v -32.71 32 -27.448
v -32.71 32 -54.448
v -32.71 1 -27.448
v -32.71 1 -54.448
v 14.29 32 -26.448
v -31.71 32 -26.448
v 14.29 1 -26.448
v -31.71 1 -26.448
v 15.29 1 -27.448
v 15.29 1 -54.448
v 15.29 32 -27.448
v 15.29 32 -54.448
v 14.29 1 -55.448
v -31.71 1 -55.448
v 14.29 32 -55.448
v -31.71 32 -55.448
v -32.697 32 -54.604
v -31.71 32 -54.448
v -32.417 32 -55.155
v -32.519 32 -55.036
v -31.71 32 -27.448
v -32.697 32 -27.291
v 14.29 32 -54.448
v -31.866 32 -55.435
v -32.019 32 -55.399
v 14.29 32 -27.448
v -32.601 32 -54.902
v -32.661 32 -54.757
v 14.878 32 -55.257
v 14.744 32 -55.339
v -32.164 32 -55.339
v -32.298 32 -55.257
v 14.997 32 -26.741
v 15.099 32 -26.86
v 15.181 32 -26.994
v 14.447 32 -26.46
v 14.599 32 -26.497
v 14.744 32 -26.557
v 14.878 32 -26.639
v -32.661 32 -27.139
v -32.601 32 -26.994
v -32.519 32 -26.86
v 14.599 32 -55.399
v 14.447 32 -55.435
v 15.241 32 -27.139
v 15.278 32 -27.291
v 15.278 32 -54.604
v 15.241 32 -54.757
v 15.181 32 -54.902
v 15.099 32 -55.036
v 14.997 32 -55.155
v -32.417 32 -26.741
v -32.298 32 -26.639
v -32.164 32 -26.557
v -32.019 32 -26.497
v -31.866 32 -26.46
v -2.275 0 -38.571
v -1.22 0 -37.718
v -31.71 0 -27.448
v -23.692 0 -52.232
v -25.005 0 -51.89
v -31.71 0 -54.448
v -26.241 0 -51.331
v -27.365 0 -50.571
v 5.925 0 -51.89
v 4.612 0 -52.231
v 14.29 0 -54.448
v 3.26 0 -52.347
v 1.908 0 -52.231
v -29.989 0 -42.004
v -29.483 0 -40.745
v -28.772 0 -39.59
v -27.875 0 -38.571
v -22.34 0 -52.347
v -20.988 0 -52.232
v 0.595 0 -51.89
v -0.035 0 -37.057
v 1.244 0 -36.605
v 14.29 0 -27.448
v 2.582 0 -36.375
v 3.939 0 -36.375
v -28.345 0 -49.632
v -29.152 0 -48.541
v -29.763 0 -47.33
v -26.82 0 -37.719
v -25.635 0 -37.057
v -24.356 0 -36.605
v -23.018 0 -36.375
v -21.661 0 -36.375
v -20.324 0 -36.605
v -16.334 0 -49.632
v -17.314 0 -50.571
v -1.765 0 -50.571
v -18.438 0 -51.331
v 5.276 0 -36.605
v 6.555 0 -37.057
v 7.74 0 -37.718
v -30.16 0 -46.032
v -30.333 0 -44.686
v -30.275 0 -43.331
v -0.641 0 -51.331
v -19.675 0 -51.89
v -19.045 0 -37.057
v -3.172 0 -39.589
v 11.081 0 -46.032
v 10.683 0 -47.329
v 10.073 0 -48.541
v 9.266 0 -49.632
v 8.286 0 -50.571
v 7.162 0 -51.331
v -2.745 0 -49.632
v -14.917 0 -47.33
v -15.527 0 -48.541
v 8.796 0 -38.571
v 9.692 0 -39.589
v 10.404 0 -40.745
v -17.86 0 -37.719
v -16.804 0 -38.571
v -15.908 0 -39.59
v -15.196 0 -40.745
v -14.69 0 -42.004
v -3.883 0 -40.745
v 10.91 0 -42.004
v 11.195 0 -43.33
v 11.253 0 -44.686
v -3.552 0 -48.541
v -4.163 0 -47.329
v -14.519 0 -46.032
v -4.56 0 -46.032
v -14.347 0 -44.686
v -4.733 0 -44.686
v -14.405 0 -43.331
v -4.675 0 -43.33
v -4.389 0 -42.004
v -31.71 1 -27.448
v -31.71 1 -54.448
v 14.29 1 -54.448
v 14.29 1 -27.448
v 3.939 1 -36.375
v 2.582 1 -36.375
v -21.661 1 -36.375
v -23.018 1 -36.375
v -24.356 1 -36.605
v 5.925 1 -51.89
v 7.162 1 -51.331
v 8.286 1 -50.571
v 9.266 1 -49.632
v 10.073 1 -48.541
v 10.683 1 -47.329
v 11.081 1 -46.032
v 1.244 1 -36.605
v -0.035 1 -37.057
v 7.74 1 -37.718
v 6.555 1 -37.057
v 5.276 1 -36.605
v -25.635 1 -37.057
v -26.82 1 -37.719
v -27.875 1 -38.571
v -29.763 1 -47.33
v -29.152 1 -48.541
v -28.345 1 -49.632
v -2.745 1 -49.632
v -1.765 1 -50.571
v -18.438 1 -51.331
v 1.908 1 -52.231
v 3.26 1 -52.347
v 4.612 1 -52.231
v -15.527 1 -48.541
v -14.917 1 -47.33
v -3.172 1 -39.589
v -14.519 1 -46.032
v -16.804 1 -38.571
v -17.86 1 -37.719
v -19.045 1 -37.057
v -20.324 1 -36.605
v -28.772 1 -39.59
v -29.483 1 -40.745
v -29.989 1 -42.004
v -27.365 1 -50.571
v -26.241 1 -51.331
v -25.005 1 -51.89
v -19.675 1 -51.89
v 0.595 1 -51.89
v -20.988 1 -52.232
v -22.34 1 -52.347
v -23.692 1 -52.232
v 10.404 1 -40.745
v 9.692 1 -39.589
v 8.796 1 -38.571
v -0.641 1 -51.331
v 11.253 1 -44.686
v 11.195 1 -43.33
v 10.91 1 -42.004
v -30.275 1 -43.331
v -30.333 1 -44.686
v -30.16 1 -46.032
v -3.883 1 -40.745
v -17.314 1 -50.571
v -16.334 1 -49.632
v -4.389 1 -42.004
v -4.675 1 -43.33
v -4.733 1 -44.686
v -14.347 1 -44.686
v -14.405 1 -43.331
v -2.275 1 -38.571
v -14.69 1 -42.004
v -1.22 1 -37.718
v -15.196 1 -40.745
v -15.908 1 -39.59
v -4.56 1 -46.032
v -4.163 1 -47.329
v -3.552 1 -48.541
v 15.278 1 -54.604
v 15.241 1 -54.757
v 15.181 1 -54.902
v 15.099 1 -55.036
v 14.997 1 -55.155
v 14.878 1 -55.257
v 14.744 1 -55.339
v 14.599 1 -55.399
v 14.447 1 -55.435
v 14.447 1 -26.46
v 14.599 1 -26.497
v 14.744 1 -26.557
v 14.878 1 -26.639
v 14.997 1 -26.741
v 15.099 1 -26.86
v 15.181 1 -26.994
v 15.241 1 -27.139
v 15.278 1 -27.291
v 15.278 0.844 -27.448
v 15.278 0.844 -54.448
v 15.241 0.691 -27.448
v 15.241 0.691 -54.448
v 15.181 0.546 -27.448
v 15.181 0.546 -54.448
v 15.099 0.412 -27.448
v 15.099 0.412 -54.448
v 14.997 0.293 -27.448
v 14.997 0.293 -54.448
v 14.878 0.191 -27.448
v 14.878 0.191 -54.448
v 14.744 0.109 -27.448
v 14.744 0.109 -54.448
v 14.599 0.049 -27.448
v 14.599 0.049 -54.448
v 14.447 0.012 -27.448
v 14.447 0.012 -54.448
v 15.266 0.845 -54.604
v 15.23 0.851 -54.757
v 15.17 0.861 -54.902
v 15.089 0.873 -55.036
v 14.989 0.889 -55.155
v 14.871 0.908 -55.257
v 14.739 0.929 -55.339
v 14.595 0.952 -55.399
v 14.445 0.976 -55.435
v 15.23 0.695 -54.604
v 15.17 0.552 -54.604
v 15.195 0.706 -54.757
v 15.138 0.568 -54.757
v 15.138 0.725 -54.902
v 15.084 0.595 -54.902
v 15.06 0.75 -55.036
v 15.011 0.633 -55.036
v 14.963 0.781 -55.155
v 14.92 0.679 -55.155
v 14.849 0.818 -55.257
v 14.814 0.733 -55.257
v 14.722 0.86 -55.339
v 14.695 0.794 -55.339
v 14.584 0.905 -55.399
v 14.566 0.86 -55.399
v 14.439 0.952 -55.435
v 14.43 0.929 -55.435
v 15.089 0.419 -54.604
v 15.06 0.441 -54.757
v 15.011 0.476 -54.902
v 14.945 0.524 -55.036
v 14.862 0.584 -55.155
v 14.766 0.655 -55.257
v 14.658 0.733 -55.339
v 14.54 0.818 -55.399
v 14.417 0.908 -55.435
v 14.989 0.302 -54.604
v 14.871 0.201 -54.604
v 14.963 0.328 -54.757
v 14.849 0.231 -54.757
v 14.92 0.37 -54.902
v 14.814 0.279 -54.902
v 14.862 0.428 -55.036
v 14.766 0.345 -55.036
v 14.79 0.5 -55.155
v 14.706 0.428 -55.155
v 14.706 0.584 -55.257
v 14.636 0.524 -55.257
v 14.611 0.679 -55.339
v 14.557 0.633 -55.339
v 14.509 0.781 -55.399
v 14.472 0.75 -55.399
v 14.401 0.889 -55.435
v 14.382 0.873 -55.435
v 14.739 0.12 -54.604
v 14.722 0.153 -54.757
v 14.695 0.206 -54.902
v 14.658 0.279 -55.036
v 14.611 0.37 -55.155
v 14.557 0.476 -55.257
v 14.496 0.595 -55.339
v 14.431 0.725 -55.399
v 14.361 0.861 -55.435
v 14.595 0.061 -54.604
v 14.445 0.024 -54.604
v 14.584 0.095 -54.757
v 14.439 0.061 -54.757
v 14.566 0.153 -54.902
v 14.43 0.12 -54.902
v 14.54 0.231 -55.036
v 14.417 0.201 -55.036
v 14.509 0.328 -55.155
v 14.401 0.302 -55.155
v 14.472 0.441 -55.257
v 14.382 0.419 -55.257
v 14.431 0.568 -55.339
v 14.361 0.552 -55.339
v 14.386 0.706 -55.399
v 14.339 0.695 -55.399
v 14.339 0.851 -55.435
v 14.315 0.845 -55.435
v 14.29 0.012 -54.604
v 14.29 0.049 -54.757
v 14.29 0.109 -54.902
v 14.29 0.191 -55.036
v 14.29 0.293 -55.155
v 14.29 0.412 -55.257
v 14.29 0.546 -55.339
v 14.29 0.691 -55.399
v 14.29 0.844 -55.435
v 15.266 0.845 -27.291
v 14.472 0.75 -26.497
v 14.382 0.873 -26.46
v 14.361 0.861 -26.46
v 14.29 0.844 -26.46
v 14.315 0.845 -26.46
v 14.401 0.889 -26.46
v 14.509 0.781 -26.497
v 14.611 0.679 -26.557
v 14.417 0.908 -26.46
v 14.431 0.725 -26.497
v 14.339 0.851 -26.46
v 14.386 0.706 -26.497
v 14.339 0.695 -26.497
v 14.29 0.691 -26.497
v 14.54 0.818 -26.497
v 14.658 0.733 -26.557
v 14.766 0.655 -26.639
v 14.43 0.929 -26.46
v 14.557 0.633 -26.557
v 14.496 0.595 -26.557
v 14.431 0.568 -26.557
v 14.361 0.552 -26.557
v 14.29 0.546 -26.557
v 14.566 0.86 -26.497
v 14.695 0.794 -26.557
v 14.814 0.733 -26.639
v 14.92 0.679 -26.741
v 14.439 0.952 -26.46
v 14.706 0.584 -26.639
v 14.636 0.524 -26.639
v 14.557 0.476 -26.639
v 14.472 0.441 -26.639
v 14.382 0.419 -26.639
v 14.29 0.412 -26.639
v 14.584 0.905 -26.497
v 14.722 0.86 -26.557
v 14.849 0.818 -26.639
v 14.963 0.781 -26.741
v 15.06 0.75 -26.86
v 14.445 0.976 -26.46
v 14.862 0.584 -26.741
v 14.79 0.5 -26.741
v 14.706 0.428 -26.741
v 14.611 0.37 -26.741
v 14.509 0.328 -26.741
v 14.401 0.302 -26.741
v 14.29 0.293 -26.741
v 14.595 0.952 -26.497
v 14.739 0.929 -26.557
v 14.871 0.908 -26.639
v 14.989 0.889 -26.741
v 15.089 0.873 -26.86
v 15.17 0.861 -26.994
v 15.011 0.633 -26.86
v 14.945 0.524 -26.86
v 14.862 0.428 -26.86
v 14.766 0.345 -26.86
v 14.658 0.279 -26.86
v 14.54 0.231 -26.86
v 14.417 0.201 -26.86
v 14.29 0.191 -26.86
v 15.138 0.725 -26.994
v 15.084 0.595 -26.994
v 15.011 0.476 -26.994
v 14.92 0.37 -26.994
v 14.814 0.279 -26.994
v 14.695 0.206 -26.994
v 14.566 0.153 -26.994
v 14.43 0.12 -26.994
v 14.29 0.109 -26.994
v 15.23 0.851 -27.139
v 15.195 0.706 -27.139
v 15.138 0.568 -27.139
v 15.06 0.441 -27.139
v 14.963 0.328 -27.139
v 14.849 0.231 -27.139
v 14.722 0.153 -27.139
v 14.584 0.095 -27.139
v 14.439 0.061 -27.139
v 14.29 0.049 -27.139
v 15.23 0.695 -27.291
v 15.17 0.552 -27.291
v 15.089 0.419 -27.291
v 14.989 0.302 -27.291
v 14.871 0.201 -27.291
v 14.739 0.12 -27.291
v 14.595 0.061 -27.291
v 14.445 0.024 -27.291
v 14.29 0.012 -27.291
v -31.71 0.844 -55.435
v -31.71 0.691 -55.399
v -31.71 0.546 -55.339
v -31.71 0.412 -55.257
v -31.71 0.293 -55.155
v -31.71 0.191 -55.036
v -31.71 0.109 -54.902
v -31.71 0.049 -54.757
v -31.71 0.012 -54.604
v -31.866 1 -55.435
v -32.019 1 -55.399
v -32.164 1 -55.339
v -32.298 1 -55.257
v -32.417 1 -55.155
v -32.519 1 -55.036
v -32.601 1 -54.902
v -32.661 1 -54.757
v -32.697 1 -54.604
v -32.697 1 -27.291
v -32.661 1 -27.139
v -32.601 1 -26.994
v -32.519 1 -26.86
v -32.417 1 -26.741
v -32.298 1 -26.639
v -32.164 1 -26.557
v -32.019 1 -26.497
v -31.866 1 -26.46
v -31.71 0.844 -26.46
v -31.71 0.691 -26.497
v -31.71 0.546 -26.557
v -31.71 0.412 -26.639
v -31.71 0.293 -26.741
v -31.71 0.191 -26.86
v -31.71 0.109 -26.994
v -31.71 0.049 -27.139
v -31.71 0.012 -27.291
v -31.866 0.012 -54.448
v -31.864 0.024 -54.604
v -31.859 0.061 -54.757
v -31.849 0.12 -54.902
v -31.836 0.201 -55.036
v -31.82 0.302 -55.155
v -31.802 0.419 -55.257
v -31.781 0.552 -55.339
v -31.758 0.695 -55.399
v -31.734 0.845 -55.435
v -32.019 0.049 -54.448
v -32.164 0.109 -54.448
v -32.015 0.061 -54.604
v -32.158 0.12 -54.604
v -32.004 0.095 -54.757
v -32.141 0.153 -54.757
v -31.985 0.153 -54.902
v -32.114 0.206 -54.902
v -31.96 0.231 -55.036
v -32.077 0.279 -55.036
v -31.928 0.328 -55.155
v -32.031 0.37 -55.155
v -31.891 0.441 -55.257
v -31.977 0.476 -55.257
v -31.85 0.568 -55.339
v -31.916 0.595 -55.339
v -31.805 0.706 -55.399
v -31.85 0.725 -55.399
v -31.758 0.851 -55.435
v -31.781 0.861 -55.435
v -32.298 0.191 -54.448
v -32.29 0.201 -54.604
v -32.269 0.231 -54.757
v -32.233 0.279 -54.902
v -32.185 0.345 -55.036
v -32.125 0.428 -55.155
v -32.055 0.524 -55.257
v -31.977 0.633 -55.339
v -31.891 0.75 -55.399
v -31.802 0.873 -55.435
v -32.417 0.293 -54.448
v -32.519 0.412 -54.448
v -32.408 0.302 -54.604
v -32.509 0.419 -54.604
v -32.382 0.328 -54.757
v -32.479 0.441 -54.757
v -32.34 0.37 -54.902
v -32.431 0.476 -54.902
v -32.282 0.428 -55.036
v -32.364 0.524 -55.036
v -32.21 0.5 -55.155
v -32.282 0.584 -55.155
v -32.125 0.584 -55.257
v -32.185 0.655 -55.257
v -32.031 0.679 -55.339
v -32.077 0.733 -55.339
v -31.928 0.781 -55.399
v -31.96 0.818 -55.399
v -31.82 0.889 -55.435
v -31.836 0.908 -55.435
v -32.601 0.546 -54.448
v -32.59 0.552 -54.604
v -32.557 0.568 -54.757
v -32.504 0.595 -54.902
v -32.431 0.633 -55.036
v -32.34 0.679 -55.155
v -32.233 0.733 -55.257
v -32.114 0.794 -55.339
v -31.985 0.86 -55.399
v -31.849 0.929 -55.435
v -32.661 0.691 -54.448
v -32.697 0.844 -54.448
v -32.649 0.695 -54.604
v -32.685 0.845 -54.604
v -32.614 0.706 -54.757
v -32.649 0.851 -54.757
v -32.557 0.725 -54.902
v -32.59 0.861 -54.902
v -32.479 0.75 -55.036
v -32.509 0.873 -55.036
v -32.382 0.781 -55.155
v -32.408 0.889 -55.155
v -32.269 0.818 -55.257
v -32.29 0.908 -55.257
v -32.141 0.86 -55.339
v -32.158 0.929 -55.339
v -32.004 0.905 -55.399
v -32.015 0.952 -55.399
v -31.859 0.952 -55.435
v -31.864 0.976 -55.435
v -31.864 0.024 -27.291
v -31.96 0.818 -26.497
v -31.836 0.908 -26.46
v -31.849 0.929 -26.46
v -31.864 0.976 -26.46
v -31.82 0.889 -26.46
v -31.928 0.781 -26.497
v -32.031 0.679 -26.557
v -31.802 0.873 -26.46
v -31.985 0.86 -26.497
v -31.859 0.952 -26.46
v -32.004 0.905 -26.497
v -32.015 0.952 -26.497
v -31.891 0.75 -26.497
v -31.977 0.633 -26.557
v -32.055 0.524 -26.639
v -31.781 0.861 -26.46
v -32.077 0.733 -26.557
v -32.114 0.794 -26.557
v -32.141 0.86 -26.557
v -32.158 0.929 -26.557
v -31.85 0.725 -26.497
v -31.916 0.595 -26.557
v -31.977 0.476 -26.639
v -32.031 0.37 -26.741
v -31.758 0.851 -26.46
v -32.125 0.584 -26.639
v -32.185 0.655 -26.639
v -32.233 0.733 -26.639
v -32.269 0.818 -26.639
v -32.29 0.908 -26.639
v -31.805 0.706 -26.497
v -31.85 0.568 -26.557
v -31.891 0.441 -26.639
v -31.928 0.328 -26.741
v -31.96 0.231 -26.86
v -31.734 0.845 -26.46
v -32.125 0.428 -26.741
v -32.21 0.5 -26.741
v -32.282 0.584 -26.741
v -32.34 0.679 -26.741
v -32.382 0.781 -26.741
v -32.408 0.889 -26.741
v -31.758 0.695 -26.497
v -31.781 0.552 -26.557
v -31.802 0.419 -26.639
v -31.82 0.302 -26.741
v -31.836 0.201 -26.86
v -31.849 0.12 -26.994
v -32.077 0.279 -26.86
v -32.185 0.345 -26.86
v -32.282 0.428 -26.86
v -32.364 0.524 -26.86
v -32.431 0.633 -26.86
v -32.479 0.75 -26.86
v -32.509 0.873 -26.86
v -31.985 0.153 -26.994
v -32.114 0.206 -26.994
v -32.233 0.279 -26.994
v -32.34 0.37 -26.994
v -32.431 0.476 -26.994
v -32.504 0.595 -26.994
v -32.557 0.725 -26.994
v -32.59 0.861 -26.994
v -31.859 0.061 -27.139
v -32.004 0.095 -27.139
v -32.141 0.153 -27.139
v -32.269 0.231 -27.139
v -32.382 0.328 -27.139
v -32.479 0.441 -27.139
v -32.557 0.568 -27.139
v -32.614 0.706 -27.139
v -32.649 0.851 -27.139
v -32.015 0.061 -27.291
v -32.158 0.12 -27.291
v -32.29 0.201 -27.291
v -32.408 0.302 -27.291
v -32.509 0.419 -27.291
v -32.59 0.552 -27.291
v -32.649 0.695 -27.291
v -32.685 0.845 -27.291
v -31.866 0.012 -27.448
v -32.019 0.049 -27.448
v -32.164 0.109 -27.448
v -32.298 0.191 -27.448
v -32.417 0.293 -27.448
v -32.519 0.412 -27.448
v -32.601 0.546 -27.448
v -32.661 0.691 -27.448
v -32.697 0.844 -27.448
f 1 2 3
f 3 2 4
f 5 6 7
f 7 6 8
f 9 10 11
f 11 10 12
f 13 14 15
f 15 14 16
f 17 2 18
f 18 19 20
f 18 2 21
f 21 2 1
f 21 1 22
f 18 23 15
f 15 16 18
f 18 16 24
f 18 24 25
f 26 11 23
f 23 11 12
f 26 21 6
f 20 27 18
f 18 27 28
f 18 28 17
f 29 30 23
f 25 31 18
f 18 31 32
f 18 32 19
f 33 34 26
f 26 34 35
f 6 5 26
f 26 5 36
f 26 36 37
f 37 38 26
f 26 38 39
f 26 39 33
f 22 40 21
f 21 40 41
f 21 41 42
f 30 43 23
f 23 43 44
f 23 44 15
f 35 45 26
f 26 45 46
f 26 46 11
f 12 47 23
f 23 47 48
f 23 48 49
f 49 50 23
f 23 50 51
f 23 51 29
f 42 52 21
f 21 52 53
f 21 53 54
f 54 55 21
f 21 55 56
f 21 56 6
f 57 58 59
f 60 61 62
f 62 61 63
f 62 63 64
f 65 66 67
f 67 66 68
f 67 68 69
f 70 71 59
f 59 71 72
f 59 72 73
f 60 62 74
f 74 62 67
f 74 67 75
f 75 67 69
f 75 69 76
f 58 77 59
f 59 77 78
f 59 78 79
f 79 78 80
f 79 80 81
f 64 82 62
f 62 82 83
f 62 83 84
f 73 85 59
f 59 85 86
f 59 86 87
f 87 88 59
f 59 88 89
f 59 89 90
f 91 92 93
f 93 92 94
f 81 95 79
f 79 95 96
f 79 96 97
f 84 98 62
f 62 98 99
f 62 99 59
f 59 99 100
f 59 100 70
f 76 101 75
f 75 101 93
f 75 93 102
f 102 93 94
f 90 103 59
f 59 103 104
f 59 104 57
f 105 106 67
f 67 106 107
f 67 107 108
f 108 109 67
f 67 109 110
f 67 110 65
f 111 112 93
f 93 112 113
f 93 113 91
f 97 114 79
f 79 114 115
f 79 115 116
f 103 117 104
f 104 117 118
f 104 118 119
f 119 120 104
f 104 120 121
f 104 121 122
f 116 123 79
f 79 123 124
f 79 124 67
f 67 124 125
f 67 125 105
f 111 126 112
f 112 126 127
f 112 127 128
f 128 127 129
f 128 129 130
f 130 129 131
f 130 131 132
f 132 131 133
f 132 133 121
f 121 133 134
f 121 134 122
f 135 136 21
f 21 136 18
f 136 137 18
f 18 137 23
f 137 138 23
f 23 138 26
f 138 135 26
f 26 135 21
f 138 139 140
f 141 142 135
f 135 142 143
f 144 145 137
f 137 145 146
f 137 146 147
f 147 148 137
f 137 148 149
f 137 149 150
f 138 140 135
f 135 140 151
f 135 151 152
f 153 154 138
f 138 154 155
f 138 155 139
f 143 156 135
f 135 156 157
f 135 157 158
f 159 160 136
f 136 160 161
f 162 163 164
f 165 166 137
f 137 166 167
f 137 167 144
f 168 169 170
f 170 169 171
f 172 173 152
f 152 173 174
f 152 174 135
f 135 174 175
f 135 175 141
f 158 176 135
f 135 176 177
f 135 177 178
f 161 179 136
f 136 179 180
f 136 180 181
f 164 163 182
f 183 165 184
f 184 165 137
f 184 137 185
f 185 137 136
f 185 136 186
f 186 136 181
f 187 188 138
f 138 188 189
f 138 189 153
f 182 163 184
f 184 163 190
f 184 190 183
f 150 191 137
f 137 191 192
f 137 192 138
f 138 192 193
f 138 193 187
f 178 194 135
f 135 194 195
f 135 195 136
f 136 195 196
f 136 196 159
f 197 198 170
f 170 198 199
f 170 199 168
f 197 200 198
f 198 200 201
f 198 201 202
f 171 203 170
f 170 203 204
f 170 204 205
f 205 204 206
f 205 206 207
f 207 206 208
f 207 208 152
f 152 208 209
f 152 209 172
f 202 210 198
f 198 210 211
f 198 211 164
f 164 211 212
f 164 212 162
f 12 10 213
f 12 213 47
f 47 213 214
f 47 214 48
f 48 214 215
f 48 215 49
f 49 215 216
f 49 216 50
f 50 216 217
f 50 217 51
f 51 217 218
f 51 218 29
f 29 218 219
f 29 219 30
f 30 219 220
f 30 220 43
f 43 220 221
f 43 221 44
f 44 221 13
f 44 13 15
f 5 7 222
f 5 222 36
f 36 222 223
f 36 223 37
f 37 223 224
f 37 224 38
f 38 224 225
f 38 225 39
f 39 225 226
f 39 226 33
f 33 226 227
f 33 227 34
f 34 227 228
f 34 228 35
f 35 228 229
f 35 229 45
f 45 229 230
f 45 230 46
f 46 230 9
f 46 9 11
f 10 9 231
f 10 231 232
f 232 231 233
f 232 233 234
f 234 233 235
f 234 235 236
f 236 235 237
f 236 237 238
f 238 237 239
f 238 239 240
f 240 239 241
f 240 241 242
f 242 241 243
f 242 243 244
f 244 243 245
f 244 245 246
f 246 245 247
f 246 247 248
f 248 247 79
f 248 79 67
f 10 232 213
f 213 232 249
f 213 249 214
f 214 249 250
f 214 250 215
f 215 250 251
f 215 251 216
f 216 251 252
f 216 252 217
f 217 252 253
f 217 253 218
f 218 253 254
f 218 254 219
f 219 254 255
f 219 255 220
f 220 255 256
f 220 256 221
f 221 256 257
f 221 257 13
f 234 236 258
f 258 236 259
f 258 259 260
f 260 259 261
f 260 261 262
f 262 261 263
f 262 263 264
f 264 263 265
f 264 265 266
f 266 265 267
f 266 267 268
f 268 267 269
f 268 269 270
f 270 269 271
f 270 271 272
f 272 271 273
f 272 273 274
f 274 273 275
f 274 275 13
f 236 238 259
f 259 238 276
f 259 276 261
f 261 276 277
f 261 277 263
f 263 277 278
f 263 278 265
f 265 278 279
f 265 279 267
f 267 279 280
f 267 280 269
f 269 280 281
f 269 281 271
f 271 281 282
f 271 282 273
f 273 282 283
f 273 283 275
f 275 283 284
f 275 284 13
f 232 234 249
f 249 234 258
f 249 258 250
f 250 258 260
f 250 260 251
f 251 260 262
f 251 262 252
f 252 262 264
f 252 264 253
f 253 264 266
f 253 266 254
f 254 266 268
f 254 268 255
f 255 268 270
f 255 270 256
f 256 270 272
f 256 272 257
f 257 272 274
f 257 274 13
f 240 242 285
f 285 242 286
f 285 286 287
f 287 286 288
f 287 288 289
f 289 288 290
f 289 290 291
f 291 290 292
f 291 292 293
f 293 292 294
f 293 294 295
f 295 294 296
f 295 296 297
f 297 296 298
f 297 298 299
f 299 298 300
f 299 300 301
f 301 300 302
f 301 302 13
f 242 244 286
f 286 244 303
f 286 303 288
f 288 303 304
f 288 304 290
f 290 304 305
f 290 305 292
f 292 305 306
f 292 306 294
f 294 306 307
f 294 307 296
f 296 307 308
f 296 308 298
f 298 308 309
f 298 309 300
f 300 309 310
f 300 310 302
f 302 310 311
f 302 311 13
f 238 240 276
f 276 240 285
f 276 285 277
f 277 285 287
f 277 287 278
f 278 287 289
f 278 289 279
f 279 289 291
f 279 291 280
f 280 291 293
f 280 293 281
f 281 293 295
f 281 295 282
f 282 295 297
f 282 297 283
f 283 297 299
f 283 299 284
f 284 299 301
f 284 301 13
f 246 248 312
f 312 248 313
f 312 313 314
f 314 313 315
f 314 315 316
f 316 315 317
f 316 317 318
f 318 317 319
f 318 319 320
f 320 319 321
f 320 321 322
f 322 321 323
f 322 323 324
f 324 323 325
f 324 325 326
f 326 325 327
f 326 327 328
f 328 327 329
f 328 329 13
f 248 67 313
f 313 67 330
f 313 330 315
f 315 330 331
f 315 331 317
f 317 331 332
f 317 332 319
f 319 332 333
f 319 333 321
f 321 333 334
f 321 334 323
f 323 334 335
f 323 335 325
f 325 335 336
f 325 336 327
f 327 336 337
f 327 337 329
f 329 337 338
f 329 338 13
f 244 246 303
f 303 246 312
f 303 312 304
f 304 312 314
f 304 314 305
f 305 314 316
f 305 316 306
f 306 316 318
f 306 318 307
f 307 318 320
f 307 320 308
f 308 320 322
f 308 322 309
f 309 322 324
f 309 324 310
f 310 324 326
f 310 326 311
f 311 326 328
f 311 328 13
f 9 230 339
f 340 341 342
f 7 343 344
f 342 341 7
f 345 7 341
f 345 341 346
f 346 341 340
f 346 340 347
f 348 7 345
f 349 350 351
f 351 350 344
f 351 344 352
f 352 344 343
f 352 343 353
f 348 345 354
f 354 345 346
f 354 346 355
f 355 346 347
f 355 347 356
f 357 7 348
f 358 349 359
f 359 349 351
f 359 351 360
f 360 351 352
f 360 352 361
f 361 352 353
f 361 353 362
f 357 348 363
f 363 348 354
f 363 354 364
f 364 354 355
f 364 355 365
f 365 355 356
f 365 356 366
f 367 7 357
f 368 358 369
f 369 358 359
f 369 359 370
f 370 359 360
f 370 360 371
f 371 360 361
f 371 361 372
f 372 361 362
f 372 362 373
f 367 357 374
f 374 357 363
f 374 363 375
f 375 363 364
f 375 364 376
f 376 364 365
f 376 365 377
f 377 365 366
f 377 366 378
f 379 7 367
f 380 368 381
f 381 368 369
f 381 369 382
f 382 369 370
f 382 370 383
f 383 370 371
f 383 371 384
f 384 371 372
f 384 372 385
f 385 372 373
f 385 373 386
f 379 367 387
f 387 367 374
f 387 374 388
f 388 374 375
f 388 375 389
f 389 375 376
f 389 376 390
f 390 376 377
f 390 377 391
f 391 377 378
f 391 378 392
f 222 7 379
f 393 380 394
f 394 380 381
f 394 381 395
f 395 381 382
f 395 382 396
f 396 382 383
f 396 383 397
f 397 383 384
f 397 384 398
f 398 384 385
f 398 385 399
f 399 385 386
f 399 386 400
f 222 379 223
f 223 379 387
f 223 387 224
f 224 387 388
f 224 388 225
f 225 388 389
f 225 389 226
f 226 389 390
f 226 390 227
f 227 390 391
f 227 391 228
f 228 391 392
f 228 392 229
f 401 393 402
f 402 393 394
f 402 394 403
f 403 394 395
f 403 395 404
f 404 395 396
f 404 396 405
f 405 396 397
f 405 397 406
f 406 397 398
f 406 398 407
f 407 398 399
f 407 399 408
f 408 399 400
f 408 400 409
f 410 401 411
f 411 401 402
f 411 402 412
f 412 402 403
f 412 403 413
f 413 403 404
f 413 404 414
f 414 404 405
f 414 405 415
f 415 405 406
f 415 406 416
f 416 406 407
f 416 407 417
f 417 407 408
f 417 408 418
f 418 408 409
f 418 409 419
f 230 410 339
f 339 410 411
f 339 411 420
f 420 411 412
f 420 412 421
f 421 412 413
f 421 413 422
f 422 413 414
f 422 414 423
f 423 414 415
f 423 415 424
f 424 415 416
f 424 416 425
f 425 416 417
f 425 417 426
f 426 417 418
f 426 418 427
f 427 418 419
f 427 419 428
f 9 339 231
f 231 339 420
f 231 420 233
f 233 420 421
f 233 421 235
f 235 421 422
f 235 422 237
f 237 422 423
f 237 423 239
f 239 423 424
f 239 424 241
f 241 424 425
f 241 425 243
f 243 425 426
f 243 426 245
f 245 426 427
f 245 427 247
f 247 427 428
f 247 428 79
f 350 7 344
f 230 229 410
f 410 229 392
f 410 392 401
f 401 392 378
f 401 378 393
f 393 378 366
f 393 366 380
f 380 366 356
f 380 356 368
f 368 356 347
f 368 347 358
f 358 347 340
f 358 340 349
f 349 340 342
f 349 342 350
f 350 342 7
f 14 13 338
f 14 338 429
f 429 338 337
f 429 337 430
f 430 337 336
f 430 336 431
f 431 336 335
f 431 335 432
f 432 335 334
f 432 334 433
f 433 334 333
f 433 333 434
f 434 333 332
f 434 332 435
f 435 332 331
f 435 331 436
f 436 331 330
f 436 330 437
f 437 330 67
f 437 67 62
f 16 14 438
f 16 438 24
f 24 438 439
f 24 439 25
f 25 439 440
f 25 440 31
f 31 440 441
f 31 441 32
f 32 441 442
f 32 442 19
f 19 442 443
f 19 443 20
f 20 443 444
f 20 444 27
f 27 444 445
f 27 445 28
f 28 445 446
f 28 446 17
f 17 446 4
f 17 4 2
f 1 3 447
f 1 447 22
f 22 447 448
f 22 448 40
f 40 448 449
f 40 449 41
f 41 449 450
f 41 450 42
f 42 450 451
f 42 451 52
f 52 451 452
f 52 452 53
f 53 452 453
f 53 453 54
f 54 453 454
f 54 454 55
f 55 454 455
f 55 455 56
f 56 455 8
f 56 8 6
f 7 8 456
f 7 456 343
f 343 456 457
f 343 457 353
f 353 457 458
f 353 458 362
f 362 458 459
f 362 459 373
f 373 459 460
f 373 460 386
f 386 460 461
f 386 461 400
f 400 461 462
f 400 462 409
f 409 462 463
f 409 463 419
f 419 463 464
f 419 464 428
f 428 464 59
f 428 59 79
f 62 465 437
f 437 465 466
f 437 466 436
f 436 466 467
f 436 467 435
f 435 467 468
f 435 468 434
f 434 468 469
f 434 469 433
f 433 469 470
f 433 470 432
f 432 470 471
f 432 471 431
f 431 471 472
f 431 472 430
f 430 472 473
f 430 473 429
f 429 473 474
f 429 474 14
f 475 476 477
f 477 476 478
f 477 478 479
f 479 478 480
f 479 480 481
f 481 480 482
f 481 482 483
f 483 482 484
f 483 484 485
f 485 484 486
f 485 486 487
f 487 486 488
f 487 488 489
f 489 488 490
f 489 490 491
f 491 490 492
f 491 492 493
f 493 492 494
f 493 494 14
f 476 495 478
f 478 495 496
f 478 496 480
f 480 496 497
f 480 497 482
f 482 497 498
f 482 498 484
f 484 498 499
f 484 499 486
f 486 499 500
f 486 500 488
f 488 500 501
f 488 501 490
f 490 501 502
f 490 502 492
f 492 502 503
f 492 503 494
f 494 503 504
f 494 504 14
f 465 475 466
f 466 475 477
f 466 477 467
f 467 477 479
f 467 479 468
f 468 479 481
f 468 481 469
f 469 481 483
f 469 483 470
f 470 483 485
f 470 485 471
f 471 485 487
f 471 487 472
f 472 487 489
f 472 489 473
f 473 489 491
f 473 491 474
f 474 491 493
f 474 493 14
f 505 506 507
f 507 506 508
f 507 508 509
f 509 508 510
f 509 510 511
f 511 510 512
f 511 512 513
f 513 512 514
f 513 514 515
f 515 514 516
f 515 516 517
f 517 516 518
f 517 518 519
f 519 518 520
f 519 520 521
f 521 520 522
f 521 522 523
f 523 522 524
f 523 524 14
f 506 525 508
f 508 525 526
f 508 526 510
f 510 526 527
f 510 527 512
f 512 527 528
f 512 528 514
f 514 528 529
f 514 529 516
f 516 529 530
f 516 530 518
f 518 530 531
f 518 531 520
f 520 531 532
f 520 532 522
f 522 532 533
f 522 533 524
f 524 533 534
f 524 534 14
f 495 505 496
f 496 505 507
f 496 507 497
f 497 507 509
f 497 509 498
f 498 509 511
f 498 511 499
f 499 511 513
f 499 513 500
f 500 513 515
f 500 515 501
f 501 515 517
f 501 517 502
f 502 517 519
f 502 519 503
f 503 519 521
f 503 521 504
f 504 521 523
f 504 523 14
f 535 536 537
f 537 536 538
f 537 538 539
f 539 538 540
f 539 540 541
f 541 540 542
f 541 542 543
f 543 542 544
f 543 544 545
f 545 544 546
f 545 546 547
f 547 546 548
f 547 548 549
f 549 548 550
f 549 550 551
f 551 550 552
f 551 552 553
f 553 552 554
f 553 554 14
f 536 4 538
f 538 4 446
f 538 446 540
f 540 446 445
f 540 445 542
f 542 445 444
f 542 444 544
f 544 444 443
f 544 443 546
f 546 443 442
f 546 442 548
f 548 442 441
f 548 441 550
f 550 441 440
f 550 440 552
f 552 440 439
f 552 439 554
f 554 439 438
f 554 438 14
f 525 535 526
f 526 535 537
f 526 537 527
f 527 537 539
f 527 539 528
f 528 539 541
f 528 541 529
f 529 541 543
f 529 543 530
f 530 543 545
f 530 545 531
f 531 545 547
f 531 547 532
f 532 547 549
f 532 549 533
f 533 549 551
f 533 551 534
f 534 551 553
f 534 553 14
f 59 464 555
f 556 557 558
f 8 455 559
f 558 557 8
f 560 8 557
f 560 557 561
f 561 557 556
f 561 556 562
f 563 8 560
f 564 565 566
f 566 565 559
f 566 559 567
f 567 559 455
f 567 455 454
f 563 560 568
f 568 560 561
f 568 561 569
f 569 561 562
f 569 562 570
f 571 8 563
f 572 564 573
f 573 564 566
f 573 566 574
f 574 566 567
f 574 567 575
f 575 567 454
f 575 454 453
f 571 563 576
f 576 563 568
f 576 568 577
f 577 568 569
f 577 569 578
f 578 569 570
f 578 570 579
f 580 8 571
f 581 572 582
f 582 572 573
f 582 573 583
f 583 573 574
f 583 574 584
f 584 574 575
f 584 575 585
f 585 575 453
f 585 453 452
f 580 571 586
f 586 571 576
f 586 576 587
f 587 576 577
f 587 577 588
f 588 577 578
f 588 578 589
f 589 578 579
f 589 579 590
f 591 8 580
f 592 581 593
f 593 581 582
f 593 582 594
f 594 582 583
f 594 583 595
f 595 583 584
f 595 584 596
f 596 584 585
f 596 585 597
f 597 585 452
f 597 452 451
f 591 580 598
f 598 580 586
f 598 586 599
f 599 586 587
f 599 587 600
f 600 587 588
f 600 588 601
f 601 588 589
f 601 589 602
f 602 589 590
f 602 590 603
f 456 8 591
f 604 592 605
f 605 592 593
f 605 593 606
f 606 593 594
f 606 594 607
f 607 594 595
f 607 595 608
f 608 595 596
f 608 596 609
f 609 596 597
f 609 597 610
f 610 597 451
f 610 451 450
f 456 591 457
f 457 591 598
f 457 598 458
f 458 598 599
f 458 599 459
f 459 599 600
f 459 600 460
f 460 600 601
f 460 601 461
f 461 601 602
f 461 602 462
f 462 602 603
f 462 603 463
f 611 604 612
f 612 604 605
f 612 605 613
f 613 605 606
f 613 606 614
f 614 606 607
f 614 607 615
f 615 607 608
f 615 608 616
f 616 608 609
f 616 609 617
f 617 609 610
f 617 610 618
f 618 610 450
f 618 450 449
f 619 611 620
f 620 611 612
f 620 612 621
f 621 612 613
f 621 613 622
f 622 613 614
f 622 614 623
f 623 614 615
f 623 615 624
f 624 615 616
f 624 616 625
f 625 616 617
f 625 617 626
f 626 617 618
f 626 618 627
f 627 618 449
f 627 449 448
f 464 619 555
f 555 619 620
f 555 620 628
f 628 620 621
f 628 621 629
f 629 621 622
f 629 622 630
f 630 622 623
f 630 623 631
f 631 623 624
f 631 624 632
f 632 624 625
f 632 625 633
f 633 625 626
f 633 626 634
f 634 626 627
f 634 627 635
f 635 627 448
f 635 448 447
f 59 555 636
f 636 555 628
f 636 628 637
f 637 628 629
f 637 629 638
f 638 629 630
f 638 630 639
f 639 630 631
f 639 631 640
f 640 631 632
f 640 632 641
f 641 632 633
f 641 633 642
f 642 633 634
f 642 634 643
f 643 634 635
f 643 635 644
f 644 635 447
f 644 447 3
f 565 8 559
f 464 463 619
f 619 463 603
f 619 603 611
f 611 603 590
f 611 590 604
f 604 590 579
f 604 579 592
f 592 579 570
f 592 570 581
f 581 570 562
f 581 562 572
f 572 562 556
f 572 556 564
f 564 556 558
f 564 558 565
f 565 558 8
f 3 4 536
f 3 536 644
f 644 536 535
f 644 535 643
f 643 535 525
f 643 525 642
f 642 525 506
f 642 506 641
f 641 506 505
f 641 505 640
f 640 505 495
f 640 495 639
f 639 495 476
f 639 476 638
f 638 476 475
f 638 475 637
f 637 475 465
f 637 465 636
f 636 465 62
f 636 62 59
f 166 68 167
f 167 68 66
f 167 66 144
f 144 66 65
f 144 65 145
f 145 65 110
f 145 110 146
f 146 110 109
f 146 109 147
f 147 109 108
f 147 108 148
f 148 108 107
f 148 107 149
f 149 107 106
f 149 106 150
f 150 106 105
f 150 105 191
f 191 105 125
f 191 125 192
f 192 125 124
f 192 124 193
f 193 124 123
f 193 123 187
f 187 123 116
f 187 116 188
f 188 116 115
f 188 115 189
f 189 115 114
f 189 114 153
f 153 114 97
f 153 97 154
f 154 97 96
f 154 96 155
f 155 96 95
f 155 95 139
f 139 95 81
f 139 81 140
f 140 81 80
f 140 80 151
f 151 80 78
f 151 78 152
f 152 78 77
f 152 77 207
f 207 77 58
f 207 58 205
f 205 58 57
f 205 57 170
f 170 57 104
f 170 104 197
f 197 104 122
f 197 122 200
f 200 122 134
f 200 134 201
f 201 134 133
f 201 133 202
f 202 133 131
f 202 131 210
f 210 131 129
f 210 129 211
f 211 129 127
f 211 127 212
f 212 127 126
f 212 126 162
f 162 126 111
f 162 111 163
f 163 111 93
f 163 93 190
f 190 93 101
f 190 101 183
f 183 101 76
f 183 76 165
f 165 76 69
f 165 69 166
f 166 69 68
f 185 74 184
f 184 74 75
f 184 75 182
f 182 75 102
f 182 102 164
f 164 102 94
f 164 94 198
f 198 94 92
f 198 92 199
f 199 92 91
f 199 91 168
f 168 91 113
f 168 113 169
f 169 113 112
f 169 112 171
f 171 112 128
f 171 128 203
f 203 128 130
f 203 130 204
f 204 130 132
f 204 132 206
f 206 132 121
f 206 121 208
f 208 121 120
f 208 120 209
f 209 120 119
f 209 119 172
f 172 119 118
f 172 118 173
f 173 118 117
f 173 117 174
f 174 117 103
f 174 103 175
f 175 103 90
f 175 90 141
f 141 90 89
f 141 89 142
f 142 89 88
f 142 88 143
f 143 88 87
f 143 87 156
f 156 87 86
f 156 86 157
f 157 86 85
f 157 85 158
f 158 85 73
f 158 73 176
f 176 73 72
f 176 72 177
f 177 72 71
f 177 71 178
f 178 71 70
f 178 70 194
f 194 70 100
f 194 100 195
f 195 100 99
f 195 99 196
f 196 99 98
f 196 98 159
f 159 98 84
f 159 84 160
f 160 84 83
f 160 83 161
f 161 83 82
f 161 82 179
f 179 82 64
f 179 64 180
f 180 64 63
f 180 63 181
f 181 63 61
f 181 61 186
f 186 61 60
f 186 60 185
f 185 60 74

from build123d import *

# Parameters (mm, degrees)
SKETCH_1_W          = 48
SKETCH_1_H          = 29
EXTRUDE_1_DEPTH     = 32
SKETCH_4_W          = 46
SKETCH_4_H          = 27
CUT_EXTRUDE_1_DEPTH = 31
FILLET_1_R          = 1
SKETCH_5_R          = 8
CUT_EXTRUDE_2_DEPTH = 1


with BuildPart() as part:
    # ｽｹｯﾁ1 → ﾎﾞｽ - 押し出し1 (new body)
    with BuildSketch(Plane(origin=(0, 0, 0), x_dir=(1, 0, 0), z_dir=(0, 1, 0))):
        with Locations((-8.709727642, 40.94775)):
            Rectangle(SKETCH_1_W, SKETCH_1_H)
    extrude(amount=EXTRUDE_1_DEPTH)

    # ｽｹｯﾁ4 → ｶｯﾄ - 押し出し1 (cut)
    with BuildSketch(Plane(origin=(0, 32, 0), x_dir=(1, 0, 0), z_dir=(0, 1, 0))):
        with Locations((-8.709727642, 40.94775)):
            Rectangle(SKETCH_4_W, SKETCH_4_H)
    extrude(amount=-CUT_EXTRUDE_1_DEPTH, mode=Mode.SUBTRACT)

    # ﾌｨﾚｯﾄ1
    fillet_1_edges = [part.edges().sort_by_distance(p)[0] for p in [
        (-8.709727642, 0, -55.44775),
        (15.290272358, 0, -40.94775),
        (-8.709727642, 0, -26.44775),
        (-32.709727642, 0, -40.94775),
        (-32.709727642, 16, -55.44775),
        (15.290272358, 16, -55.44775),
        (15.290272358, 16, -26.44775),
        (-32.709727642, 16, -26.44775),
    ]]
    fillet(fillet_1_edges, radius=FILLET_1_R)

    # ｽｹｯﾁ5 → ｶｯﾄ - 押し出し2 (cut)
    with BuildSketch(Plane(origin=(0, 0, 0), x_dir=(-1, 0, 0), z_dir=(0, -1, 0))):
        with Locations(Location((-3.260272358, 44.346563504, 0), (0, 0, 90))):
            Circle(SKETCH_5_R)
        with Locations(Location((22.339727642, 44.346653581, 0), (0, 0, 90))):
            Circle(SKETCH_5_R)
    extrude(amount=-CUT_EXTRUDE_2_DEPTH, mode=Mode.SUBTRACT)


solid = part.part
